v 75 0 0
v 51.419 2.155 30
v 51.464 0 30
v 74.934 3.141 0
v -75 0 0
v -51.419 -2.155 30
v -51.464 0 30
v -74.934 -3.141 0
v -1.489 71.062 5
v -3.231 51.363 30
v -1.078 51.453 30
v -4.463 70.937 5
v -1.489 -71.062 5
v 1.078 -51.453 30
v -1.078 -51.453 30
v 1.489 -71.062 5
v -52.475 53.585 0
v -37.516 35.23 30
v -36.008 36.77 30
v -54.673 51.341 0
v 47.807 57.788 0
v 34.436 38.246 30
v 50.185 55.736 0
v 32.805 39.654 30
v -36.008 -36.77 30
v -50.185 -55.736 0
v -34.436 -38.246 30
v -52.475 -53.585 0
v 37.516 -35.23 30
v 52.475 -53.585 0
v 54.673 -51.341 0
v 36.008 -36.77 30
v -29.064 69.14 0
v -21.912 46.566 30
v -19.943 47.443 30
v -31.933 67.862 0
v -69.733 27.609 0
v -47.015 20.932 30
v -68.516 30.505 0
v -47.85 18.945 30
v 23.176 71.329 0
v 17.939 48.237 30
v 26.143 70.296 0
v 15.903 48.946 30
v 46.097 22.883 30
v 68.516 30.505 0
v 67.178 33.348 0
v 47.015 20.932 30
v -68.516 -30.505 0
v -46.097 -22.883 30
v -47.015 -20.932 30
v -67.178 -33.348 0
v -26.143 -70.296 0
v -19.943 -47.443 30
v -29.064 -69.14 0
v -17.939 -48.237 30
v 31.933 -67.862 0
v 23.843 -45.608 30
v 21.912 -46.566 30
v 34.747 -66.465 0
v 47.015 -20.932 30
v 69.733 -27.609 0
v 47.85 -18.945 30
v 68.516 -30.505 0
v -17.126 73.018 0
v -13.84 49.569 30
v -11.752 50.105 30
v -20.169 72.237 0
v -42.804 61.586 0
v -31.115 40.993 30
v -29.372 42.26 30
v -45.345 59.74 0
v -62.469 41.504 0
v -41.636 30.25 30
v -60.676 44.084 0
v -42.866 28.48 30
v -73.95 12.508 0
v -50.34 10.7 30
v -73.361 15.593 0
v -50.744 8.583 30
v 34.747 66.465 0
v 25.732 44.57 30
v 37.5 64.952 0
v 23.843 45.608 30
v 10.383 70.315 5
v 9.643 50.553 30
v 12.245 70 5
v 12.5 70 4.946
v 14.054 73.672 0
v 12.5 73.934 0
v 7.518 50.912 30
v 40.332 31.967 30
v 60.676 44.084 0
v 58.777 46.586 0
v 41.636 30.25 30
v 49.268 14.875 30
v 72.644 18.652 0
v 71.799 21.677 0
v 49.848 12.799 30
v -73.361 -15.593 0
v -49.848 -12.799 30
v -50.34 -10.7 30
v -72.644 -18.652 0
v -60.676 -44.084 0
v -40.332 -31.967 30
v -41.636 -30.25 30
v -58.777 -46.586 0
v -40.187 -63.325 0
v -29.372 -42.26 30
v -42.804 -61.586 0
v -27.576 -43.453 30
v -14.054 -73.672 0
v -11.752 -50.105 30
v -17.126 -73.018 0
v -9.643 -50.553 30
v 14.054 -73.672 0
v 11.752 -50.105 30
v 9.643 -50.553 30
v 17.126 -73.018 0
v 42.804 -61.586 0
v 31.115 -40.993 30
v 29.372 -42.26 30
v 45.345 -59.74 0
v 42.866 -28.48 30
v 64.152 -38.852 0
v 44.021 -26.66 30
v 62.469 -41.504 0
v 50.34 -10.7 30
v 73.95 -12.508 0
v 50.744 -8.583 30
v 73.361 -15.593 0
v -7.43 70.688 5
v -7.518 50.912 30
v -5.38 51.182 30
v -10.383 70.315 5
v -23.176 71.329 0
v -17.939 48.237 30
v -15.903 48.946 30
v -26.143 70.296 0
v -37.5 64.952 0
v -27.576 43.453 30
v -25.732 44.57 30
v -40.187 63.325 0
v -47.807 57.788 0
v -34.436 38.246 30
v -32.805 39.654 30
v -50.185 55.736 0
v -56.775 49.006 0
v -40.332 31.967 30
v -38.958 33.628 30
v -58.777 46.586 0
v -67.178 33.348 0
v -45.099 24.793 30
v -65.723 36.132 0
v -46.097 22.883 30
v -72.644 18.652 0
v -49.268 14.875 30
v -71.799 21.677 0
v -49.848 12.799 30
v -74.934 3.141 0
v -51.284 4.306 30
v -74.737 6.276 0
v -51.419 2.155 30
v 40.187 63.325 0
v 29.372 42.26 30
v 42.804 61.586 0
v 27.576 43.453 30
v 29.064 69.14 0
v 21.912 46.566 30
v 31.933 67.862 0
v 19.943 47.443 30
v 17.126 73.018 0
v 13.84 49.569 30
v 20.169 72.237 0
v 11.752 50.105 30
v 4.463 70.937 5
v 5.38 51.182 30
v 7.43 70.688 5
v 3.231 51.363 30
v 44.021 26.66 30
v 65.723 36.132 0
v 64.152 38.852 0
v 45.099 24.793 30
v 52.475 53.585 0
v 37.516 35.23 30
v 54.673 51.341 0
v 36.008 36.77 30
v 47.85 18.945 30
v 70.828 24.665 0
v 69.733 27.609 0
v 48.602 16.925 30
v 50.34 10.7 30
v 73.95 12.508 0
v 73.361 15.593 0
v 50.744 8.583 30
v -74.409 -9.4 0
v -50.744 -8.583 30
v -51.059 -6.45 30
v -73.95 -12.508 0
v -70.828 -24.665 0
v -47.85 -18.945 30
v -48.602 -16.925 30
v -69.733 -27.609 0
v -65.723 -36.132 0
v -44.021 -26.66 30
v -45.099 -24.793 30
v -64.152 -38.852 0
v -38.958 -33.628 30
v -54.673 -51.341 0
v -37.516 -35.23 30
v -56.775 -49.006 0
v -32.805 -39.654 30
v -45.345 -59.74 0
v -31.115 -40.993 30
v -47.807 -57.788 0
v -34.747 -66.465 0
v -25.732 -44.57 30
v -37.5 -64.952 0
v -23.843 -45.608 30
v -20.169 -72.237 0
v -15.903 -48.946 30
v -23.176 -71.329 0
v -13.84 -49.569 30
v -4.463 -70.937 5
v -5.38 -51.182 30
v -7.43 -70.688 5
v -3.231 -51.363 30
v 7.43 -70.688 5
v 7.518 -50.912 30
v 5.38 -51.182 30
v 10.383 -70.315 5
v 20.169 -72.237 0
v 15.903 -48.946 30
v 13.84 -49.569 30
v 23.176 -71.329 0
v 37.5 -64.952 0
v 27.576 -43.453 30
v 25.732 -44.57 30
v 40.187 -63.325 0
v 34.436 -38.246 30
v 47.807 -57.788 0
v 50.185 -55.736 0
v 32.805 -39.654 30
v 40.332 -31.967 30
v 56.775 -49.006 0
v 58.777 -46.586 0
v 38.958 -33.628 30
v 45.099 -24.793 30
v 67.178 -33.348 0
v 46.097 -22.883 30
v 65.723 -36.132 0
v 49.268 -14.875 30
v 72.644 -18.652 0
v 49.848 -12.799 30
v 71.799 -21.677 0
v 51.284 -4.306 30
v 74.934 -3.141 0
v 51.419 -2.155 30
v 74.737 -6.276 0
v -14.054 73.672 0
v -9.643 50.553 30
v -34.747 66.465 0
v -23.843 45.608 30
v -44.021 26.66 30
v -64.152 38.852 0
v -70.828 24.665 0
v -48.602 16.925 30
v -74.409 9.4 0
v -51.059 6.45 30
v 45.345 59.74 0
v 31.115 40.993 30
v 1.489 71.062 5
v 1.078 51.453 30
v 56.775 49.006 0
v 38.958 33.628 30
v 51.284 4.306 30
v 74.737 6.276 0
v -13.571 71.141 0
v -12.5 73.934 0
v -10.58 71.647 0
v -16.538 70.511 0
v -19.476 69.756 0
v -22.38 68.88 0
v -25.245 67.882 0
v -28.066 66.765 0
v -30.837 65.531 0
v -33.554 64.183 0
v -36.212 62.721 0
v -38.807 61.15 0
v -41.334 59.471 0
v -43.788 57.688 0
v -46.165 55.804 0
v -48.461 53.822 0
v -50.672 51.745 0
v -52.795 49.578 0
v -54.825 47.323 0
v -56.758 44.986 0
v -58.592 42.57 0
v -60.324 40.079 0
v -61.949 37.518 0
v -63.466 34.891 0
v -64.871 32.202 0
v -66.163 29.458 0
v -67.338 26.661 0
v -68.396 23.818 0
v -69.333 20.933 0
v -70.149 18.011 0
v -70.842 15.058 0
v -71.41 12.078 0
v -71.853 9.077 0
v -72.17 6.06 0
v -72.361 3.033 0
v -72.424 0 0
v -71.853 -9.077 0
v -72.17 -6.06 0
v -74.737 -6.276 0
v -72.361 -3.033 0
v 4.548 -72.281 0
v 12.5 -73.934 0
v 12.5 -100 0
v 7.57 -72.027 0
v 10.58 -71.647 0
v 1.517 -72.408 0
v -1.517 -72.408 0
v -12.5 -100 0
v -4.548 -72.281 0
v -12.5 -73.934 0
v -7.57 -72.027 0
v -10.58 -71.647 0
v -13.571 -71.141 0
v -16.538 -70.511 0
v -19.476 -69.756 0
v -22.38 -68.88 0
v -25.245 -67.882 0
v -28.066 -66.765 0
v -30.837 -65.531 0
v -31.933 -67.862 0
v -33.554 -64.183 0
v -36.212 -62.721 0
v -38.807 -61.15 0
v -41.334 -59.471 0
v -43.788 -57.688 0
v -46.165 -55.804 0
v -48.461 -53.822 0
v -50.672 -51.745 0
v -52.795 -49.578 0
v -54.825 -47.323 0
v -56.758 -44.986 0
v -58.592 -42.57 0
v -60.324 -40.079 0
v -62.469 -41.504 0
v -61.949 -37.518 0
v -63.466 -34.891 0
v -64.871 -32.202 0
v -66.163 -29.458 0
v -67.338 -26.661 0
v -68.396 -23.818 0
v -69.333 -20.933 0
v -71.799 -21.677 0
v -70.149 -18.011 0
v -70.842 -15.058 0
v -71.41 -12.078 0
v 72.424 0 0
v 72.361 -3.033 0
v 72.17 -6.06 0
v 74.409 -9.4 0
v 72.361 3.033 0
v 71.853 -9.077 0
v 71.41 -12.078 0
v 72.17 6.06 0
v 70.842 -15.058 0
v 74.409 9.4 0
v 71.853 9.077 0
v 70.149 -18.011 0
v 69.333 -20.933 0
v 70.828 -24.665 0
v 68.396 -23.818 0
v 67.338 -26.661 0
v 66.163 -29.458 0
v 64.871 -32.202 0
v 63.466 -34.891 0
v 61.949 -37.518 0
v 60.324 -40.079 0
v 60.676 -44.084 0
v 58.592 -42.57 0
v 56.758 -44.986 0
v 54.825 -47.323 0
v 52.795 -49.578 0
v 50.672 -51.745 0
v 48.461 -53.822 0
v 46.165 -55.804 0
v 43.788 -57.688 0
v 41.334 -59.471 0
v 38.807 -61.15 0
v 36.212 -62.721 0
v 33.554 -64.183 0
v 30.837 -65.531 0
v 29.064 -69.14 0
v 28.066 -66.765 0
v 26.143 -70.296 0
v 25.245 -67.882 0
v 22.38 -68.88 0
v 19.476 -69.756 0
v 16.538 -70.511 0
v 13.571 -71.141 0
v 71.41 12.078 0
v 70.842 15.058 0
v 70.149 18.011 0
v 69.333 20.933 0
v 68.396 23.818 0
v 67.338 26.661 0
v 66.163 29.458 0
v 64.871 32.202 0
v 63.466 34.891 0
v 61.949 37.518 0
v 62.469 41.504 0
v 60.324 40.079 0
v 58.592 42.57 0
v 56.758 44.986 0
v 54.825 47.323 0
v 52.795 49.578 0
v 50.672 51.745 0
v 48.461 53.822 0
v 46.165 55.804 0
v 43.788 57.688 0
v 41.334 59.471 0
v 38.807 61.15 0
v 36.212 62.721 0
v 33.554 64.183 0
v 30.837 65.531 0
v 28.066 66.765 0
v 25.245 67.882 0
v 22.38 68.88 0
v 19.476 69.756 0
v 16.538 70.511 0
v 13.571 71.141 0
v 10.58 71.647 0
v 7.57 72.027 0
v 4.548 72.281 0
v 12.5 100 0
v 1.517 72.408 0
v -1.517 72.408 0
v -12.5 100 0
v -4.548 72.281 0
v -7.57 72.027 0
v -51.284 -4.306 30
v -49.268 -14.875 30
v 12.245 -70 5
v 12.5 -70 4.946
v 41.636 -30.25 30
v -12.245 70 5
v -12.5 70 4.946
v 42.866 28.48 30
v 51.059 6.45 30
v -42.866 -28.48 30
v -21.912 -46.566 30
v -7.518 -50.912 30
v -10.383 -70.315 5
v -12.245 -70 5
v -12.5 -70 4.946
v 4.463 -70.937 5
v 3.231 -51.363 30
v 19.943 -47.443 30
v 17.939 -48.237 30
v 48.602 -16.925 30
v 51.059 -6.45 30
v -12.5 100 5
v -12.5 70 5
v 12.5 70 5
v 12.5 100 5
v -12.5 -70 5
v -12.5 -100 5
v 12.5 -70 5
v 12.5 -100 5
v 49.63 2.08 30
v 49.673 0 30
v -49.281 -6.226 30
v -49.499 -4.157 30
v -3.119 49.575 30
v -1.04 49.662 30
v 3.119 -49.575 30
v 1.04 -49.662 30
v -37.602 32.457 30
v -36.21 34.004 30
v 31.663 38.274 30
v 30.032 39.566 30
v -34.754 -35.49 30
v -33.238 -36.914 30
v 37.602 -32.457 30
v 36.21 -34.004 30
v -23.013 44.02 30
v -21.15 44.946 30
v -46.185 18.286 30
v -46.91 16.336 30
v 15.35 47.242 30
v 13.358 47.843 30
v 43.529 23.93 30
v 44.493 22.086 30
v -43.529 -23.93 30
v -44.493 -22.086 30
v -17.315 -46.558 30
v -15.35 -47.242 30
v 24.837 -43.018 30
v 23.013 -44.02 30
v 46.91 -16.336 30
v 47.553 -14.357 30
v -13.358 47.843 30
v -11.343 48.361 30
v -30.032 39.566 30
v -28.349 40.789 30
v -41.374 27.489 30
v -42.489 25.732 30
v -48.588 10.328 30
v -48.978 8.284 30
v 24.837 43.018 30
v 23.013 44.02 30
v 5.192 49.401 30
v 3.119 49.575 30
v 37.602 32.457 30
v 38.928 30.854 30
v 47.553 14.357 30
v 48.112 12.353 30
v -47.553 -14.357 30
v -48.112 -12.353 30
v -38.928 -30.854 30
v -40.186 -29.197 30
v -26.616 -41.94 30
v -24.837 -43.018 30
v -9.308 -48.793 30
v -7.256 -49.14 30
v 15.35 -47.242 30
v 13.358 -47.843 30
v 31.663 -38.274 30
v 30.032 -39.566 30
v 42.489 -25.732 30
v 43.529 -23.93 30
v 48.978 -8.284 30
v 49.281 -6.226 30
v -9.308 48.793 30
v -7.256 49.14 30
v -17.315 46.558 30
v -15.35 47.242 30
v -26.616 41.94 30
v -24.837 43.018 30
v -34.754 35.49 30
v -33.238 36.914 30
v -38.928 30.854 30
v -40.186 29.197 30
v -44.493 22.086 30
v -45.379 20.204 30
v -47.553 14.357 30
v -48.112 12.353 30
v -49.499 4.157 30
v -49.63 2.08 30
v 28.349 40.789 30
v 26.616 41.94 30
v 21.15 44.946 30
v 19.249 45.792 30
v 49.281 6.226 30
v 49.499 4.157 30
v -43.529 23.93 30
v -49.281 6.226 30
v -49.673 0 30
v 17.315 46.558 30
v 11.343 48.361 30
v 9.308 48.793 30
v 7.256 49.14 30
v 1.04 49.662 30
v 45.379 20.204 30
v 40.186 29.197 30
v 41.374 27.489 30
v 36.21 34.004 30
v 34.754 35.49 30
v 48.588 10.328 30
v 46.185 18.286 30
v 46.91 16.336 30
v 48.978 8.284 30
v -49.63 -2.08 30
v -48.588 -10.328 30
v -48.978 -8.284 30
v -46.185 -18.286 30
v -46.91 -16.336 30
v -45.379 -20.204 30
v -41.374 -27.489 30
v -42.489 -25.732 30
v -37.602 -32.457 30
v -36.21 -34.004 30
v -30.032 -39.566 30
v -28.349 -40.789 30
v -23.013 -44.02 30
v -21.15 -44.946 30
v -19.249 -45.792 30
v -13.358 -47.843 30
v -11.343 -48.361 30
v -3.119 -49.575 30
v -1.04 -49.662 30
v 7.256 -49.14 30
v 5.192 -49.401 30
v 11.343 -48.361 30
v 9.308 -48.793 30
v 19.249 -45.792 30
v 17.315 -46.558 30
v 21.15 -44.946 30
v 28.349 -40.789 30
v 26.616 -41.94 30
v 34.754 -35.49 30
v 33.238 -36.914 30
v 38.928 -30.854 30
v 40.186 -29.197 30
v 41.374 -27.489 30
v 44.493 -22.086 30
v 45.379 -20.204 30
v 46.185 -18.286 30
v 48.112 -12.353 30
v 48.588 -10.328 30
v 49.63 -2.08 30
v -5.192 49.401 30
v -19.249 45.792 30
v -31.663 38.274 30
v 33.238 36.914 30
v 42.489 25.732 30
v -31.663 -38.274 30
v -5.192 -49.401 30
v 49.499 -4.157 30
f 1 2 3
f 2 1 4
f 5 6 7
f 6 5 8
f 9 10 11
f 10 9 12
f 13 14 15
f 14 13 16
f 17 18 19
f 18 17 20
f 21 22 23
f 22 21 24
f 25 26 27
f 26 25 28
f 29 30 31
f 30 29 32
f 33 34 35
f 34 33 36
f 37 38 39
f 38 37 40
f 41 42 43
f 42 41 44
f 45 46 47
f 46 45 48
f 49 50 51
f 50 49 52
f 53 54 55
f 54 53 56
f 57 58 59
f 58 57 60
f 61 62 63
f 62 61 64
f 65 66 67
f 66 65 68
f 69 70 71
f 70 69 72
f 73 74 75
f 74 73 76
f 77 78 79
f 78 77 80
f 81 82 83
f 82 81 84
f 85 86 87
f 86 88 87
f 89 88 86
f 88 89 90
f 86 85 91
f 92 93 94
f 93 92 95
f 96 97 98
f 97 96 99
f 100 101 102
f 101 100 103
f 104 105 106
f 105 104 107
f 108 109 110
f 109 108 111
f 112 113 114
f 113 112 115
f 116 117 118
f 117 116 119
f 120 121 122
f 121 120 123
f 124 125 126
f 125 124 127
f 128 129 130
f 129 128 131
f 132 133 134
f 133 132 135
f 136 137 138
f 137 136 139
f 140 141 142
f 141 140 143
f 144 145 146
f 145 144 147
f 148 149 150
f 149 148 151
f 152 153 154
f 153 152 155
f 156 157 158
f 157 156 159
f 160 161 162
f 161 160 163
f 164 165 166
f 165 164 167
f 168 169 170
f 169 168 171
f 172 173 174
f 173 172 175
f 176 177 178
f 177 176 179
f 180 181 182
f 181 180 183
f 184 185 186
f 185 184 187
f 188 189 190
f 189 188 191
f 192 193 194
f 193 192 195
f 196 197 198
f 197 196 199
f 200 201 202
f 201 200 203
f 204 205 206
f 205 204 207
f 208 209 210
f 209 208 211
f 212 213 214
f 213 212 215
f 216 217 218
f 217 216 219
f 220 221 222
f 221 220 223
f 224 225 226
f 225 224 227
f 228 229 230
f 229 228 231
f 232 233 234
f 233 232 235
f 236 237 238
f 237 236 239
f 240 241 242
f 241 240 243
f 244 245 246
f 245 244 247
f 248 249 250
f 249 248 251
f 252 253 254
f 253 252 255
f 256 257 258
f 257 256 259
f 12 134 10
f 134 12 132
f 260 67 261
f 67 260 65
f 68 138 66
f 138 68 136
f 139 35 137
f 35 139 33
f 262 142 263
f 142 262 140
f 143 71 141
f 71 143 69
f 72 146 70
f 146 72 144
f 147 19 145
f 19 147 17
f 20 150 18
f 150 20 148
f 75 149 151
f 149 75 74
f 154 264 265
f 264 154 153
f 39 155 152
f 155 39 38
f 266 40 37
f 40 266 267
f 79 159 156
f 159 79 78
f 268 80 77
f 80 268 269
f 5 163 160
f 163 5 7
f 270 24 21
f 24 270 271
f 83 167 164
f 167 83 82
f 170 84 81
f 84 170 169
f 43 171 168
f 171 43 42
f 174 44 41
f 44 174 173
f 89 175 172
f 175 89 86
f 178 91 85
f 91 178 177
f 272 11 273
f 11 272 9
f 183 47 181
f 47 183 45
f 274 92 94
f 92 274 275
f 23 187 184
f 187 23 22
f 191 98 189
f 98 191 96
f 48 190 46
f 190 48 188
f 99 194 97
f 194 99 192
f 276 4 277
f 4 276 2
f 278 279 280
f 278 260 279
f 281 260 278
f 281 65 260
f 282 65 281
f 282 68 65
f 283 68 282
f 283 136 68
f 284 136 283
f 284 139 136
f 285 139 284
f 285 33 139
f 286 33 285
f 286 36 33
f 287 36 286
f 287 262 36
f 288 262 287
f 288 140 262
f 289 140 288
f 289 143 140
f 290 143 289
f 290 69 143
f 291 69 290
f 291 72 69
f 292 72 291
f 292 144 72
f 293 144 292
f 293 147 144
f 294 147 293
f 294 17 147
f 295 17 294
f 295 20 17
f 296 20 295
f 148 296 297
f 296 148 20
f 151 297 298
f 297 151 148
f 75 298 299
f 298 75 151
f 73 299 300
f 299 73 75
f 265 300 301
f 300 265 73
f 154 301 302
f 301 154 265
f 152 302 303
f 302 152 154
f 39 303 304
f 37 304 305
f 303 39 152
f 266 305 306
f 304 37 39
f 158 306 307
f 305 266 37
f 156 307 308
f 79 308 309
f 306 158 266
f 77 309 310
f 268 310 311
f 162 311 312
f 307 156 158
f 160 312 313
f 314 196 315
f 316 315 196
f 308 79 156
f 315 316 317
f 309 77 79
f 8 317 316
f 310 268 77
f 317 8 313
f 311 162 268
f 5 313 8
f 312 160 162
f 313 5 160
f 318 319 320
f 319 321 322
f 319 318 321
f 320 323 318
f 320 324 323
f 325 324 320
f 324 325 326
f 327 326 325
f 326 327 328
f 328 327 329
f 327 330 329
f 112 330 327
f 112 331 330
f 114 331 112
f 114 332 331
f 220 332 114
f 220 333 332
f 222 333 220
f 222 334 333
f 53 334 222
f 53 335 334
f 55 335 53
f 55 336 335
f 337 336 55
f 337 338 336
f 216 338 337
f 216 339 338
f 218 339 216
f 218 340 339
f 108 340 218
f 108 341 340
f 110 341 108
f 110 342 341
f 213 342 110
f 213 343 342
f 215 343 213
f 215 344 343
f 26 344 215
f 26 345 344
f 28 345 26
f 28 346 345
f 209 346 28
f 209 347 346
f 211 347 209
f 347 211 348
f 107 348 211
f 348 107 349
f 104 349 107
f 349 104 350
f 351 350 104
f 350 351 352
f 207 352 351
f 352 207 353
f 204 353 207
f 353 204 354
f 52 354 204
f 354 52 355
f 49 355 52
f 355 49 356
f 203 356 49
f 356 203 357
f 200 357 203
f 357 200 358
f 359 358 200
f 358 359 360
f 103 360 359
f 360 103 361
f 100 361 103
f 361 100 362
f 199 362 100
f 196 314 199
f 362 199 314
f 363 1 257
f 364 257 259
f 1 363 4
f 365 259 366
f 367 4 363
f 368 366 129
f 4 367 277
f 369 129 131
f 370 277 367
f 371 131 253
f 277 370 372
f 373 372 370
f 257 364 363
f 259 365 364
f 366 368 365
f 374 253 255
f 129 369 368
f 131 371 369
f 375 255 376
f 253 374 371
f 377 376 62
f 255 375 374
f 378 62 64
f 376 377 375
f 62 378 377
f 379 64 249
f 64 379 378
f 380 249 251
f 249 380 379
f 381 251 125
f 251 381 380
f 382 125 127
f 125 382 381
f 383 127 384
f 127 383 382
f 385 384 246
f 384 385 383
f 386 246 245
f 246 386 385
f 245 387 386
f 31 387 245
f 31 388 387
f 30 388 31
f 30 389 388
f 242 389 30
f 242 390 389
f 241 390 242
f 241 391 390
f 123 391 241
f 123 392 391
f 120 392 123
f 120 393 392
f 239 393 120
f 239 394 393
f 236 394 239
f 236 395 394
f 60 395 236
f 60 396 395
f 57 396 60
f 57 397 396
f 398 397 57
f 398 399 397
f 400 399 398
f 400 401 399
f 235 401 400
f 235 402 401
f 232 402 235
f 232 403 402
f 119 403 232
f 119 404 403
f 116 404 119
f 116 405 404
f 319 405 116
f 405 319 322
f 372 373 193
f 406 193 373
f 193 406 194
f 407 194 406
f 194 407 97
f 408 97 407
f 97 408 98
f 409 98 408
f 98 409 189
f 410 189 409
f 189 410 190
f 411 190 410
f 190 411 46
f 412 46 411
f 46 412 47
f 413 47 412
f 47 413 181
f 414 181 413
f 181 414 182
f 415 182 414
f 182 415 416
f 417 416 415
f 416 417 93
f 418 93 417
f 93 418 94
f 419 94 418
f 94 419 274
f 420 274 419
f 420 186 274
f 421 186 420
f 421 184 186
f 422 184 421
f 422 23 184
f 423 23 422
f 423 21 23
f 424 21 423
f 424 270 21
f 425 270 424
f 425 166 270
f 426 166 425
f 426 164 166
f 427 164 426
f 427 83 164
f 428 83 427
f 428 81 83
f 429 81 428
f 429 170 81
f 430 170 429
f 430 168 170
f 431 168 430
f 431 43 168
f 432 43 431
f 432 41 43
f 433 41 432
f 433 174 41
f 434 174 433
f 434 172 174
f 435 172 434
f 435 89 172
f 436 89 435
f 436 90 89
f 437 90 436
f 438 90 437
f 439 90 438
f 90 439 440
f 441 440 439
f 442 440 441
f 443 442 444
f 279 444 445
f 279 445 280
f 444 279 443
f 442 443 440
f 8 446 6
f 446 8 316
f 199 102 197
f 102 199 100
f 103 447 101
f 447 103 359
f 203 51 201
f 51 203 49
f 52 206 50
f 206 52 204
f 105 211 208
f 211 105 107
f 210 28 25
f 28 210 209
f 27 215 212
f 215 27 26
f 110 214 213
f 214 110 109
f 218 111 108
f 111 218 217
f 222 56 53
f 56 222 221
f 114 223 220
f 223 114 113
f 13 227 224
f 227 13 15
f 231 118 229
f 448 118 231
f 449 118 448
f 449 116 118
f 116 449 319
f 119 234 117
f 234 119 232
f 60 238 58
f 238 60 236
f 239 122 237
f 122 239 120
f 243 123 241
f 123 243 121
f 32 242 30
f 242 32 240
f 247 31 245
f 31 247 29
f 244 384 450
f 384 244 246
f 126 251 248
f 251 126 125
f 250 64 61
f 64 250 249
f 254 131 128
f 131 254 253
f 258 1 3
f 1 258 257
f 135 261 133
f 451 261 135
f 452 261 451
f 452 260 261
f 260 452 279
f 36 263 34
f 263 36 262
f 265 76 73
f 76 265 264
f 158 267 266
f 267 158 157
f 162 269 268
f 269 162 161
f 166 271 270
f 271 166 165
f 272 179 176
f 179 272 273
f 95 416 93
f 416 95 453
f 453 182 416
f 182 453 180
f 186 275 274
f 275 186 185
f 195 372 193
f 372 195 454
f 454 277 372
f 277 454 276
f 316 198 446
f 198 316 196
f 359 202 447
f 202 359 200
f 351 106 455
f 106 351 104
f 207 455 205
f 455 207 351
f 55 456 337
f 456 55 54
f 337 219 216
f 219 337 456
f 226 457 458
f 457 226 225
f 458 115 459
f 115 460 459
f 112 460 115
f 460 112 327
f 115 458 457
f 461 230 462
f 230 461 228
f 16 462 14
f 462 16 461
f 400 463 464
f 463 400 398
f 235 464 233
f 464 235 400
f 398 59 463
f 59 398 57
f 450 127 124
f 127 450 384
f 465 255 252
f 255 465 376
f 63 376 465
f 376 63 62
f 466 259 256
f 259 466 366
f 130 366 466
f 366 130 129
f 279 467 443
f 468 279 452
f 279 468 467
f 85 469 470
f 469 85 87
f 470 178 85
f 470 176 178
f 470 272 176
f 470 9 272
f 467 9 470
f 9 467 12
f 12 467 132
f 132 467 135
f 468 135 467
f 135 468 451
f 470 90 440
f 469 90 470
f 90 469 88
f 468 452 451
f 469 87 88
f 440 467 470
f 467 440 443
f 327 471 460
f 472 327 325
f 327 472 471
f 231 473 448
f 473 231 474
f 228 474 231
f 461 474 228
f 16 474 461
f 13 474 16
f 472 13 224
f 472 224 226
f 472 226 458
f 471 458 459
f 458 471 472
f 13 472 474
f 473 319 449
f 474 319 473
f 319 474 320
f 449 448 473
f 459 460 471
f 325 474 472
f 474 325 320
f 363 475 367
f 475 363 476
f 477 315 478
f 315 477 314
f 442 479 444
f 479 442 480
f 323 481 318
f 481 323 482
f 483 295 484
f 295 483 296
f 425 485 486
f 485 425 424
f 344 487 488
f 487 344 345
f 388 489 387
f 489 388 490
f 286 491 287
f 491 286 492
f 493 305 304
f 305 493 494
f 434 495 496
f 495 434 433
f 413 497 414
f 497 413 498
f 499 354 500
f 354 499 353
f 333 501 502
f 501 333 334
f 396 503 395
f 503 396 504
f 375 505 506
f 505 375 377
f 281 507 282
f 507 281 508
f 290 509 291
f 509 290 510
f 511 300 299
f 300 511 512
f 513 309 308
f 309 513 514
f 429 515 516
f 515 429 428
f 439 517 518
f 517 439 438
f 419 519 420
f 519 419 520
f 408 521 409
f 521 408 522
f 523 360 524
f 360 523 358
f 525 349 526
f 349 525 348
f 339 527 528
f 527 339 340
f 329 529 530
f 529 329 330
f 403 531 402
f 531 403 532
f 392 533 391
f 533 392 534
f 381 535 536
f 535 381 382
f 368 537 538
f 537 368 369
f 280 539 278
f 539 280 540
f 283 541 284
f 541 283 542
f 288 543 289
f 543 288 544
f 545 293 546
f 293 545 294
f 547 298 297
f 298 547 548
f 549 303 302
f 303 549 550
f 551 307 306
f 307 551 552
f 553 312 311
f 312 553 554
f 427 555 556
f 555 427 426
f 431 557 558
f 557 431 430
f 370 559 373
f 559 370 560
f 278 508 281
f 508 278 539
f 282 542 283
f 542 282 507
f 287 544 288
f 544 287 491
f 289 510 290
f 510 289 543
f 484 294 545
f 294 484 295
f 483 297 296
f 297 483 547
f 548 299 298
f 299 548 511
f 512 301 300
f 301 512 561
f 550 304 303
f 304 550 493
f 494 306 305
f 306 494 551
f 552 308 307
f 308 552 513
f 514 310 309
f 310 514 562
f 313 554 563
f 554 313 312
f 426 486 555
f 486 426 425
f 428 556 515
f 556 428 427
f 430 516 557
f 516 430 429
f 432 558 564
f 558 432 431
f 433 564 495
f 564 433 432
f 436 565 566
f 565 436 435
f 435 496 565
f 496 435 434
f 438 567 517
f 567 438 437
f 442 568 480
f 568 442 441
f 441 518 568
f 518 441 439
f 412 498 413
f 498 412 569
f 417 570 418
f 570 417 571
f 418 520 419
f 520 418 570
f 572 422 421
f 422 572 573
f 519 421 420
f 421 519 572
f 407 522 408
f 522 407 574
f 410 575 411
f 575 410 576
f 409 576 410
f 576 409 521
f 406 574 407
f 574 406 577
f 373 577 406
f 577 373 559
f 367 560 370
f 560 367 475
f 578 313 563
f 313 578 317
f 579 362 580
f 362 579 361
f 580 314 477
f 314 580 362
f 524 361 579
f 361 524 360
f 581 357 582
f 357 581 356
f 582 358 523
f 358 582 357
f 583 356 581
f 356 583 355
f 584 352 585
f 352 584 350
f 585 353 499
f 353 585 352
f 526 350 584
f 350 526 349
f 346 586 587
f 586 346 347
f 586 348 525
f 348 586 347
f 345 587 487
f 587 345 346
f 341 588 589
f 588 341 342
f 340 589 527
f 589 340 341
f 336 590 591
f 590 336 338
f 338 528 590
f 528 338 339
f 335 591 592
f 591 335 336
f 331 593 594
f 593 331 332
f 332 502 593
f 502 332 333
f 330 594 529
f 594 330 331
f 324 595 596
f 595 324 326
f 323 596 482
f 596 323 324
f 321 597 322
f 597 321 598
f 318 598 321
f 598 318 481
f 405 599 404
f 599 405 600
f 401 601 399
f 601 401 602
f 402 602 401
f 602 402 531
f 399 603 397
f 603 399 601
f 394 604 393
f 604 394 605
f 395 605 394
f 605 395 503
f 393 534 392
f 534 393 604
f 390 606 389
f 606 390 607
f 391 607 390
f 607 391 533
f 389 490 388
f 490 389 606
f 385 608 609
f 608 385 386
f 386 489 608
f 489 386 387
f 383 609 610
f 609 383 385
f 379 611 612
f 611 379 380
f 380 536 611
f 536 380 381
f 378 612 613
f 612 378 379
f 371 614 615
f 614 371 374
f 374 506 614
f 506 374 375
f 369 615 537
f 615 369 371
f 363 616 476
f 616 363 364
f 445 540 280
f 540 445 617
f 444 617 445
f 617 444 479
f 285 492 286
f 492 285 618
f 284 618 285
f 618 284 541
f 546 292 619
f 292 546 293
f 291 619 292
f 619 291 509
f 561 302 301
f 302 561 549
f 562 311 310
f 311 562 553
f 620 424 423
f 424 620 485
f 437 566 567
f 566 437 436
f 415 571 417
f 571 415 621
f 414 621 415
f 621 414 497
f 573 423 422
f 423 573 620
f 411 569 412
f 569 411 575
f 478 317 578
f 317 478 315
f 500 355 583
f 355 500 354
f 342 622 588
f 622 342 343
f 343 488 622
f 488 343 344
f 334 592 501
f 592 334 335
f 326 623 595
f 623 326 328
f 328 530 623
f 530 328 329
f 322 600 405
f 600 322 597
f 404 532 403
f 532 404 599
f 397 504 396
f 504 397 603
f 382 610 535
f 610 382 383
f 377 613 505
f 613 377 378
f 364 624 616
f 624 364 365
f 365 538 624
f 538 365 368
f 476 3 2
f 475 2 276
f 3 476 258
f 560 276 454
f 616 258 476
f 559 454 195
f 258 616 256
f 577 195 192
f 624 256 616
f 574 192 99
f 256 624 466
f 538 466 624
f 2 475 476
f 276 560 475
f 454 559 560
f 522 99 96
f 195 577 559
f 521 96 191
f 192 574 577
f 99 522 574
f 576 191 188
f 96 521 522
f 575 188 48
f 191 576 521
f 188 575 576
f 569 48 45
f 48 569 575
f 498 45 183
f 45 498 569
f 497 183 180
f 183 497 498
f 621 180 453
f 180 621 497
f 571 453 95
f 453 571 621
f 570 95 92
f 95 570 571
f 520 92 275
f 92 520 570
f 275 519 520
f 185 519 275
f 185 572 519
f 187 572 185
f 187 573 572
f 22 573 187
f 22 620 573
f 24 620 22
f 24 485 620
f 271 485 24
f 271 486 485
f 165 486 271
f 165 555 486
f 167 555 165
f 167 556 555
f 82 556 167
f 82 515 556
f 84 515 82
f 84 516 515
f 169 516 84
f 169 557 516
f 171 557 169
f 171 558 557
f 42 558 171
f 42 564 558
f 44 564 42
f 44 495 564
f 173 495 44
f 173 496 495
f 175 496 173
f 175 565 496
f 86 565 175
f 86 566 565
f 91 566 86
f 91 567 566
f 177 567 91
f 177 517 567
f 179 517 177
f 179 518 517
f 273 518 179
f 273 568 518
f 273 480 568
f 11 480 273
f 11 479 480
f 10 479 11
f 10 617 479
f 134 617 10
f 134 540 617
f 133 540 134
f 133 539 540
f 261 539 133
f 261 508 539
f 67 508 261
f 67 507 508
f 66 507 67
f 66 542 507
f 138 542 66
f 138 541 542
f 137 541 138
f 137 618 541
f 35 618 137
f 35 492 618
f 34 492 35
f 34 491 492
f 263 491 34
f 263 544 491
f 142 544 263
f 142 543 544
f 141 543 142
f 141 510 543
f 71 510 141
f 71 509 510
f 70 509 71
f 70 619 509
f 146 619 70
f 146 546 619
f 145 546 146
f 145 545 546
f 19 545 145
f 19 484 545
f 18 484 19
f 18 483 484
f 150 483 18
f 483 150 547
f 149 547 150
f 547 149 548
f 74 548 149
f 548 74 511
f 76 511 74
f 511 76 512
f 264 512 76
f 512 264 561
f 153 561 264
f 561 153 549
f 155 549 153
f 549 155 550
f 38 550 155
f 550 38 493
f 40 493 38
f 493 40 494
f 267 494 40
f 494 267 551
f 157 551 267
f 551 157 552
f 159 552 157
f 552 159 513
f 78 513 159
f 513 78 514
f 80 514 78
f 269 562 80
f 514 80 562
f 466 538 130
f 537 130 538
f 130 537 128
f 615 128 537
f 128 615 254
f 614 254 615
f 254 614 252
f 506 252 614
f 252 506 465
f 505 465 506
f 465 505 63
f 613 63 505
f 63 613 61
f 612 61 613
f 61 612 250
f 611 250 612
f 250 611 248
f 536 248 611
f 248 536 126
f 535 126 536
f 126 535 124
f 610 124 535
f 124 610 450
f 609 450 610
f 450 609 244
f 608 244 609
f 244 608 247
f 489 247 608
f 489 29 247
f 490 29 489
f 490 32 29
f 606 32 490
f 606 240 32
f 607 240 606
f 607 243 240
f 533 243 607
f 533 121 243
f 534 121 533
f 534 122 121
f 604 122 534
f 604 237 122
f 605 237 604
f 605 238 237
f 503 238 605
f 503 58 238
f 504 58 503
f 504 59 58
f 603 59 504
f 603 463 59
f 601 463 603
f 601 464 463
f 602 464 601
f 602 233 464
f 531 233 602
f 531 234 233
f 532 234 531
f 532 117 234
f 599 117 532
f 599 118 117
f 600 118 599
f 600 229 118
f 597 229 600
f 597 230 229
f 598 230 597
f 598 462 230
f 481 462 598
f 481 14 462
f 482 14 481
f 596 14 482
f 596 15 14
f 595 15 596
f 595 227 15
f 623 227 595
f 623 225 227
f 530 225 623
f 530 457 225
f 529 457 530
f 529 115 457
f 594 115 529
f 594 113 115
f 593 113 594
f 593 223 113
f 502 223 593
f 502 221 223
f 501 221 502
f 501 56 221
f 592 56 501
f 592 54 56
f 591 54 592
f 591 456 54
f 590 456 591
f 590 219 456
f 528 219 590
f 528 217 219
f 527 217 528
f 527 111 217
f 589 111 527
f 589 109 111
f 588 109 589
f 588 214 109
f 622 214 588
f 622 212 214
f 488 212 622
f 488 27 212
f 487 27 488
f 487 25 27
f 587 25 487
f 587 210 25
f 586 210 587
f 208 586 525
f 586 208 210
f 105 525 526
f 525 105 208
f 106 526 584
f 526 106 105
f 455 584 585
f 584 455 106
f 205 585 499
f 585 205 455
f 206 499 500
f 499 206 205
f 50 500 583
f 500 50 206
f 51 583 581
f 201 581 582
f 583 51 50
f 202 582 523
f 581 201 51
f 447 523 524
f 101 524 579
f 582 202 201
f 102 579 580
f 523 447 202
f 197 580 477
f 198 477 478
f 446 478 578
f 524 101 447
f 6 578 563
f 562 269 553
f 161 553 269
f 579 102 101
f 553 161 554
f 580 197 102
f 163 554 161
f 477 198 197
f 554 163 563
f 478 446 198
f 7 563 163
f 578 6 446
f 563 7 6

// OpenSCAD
height = 95.6;
$fn=150;

difference() {
    union() {
        cylinder(d=150,d2=0, h=height);
                
        // Supports
        translate([-12.5,(148/2)-4,0]) {
            cube([25,30,5]);
        }
        
        translate([-12.5, (-148/2)-1 - 25,0]) {
            cube([25,30,5]);
        }
    }
    union() {
        // Inside
        translate([0,0,-0.1]) {
            cylinder(d1=145,d2=0, h=height);
        }
        
        // Chop off lower part of the funnel.
        translate([-150/2, -150/2, 30]) {
            #cube([150, 150, 100]);
        }
    }
}
